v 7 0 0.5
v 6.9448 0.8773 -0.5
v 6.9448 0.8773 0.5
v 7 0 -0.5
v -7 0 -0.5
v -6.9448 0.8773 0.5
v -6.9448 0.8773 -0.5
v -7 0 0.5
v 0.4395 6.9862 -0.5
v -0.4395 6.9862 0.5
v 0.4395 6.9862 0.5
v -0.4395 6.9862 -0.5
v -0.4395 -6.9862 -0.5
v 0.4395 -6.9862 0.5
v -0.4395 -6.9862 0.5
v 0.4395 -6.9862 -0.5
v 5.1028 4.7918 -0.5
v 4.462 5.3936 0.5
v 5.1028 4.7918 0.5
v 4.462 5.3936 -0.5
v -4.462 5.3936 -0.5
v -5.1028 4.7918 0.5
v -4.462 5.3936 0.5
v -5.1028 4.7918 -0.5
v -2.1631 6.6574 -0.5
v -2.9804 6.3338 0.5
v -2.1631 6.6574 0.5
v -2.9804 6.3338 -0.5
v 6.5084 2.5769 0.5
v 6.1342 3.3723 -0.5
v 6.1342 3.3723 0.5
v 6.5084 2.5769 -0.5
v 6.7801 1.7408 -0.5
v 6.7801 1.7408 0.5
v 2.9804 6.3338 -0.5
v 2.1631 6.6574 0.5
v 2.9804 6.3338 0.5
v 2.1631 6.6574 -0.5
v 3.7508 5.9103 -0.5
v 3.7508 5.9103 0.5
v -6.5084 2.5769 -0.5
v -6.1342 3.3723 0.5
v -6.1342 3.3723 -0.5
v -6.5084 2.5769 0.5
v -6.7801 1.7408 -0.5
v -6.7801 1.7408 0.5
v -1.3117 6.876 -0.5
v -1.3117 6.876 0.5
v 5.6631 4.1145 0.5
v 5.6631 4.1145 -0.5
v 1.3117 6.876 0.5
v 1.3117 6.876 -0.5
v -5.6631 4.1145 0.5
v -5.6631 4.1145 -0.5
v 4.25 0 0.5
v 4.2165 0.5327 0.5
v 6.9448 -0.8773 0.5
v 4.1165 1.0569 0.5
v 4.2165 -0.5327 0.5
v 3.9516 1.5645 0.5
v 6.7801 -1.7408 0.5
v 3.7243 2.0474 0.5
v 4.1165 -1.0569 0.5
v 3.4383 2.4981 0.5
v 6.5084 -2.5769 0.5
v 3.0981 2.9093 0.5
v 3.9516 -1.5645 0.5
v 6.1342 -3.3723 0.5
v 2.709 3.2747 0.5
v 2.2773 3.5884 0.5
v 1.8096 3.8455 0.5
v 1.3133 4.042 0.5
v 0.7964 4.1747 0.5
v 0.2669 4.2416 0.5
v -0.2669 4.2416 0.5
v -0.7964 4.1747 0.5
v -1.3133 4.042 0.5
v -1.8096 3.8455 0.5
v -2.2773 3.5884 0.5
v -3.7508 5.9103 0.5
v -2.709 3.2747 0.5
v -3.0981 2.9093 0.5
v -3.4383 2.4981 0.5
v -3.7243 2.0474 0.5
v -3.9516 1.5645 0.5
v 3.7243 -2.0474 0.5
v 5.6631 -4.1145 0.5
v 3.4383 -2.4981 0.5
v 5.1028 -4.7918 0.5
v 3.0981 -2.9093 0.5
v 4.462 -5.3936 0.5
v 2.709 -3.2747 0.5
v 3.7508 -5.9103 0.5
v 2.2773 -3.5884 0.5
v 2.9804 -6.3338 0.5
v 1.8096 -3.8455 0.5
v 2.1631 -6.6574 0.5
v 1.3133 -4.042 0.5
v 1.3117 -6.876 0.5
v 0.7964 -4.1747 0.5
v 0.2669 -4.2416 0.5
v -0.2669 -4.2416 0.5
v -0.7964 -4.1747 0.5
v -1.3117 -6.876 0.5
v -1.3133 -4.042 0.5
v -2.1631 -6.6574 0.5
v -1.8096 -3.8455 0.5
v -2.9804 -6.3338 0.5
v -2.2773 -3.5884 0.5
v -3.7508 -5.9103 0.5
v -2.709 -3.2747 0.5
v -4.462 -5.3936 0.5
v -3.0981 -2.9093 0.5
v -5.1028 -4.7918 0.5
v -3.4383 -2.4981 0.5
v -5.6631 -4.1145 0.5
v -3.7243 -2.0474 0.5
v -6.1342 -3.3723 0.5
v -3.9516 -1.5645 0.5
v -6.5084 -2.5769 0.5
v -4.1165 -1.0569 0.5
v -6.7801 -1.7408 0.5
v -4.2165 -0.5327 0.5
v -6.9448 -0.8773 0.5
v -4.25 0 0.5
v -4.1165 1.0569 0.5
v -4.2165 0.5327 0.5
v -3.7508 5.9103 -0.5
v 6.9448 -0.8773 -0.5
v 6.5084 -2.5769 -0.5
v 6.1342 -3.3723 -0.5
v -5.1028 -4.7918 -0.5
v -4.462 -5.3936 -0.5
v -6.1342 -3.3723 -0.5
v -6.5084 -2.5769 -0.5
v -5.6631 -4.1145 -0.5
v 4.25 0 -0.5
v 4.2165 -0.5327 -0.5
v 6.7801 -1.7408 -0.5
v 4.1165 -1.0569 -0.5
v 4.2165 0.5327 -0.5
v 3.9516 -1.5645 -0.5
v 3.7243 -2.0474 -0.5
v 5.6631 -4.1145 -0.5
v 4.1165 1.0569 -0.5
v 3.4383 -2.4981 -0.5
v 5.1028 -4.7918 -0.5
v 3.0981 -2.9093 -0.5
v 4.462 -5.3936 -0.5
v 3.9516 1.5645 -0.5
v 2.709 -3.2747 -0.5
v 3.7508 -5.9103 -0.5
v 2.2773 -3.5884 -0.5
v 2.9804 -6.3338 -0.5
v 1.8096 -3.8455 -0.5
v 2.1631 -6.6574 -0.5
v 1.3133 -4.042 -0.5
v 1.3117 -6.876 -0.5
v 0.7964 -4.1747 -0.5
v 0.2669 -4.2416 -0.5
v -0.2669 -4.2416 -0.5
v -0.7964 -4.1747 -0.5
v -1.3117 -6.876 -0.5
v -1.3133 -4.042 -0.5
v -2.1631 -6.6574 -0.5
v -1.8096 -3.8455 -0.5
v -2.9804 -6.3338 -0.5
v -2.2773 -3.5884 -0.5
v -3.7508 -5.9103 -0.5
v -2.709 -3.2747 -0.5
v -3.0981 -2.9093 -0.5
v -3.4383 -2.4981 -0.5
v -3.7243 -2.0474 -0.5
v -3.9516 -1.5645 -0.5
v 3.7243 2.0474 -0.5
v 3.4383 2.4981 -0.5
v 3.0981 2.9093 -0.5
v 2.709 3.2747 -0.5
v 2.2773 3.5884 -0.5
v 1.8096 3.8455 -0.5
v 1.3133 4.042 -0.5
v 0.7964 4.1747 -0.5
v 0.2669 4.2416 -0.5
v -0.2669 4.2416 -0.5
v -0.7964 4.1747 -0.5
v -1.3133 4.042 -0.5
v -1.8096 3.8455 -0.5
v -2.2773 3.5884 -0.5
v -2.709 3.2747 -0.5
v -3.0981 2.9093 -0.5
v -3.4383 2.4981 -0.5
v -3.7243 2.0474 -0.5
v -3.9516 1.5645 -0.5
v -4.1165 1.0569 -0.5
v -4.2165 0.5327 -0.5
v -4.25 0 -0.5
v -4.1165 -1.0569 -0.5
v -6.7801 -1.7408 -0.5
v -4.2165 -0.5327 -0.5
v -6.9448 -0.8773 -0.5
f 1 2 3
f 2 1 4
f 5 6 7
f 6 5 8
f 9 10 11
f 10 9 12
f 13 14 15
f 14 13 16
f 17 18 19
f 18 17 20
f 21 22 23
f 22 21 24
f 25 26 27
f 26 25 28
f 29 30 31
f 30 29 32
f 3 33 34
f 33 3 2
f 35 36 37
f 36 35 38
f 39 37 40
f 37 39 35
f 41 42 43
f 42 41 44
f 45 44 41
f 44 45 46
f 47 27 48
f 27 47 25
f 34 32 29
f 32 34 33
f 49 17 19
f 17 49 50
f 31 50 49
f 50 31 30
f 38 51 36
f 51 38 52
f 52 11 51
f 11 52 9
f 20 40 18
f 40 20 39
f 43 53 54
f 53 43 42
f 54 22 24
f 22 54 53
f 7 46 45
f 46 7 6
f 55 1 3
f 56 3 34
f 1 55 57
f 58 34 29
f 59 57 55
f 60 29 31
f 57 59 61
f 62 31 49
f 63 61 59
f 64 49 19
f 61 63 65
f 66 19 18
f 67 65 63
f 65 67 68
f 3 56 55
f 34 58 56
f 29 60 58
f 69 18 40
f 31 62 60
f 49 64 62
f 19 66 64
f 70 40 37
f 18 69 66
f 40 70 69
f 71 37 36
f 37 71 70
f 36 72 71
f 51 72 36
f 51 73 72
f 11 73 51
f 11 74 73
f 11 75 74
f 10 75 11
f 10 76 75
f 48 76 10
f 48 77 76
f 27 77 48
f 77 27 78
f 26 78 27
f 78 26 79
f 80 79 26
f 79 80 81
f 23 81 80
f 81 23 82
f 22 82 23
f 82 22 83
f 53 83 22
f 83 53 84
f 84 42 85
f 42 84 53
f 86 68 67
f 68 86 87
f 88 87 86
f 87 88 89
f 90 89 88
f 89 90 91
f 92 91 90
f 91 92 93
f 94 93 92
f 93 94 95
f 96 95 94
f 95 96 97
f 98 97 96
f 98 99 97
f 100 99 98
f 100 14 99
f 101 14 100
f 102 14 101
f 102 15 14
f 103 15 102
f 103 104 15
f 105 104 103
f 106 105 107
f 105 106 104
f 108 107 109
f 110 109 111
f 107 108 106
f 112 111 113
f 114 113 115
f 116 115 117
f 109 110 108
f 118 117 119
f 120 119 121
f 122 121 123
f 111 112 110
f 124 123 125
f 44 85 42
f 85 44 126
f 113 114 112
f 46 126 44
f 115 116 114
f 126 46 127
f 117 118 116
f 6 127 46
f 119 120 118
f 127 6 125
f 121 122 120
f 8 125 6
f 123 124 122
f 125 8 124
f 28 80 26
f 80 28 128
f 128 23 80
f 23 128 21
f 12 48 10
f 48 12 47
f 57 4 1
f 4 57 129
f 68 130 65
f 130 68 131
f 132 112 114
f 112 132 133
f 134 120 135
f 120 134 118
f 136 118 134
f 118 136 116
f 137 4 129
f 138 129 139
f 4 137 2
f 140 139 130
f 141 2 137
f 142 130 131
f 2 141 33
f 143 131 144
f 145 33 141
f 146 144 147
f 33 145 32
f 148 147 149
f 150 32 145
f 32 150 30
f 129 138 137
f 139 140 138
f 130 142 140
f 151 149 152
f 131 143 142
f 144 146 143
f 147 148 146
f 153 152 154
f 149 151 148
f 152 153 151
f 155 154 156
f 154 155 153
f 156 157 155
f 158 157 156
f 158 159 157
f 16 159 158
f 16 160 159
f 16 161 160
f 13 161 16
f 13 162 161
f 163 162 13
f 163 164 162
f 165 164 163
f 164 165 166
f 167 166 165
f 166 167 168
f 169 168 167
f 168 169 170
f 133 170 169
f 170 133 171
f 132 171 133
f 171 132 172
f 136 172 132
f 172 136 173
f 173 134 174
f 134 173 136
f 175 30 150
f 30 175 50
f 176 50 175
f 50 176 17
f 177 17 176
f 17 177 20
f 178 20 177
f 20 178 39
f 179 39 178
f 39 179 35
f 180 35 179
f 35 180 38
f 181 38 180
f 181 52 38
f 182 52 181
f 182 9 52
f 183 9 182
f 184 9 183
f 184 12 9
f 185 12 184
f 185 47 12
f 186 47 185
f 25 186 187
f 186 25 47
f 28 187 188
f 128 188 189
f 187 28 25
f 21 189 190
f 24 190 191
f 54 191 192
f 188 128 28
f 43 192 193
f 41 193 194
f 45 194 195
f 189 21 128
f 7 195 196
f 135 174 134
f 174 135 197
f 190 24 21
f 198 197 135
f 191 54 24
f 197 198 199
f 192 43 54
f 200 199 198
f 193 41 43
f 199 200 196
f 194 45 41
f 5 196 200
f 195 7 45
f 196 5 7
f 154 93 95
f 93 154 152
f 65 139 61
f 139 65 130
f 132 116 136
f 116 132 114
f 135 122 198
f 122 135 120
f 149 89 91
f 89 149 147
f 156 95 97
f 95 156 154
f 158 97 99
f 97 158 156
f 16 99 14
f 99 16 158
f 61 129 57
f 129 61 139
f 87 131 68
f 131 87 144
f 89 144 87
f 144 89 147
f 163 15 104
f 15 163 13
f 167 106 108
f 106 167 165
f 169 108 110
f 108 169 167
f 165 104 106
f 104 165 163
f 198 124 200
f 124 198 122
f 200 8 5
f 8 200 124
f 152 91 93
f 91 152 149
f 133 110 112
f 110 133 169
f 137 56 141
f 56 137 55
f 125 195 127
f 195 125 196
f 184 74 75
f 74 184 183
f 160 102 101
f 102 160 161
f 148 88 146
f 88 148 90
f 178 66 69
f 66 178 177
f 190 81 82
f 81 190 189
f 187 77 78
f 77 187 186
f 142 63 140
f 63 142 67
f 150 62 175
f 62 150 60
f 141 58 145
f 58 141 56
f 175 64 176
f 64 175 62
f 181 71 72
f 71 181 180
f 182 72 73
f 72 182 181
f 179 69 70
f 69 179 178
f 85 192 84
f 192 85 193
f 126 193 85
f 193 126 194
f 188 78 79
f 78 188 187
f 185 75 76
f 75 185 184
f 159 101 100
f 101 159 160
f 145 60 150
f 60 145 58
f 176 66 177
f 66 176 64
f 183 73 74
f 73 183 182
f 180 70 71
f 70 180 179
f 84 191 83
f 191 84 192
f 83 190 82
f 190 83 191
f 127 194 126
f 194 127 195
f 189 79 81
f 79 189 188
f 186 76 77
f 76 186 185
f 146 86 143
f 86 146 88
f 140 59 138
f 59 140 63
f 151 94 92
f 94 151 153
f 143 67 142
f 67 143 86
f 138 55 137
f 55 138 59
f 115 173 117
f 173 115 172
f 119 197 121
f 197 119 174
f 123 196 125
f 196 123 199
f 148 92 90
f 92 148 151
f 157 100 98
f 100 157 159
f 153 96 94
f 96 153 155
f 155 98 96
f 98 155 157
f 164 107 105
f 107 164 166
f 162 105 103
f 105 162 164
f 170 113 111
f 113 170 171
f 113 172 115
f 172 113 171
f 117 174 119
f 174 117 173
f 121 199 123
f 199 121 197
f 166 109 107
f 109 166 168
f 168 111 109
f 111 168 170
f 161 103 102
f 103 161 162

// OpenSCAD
$fn = 50;


difference() {
	union() {
		translate(v = [0, 0, -0.5000000000]) {
			cylinder(h = 1, r = 7.0000000000);
		}
	}
	union() {
		translate(v = [0, 0, -100.0000000000]) {
			cylinder(h = 200, r = 4.2500000000);
		}
	}
}
